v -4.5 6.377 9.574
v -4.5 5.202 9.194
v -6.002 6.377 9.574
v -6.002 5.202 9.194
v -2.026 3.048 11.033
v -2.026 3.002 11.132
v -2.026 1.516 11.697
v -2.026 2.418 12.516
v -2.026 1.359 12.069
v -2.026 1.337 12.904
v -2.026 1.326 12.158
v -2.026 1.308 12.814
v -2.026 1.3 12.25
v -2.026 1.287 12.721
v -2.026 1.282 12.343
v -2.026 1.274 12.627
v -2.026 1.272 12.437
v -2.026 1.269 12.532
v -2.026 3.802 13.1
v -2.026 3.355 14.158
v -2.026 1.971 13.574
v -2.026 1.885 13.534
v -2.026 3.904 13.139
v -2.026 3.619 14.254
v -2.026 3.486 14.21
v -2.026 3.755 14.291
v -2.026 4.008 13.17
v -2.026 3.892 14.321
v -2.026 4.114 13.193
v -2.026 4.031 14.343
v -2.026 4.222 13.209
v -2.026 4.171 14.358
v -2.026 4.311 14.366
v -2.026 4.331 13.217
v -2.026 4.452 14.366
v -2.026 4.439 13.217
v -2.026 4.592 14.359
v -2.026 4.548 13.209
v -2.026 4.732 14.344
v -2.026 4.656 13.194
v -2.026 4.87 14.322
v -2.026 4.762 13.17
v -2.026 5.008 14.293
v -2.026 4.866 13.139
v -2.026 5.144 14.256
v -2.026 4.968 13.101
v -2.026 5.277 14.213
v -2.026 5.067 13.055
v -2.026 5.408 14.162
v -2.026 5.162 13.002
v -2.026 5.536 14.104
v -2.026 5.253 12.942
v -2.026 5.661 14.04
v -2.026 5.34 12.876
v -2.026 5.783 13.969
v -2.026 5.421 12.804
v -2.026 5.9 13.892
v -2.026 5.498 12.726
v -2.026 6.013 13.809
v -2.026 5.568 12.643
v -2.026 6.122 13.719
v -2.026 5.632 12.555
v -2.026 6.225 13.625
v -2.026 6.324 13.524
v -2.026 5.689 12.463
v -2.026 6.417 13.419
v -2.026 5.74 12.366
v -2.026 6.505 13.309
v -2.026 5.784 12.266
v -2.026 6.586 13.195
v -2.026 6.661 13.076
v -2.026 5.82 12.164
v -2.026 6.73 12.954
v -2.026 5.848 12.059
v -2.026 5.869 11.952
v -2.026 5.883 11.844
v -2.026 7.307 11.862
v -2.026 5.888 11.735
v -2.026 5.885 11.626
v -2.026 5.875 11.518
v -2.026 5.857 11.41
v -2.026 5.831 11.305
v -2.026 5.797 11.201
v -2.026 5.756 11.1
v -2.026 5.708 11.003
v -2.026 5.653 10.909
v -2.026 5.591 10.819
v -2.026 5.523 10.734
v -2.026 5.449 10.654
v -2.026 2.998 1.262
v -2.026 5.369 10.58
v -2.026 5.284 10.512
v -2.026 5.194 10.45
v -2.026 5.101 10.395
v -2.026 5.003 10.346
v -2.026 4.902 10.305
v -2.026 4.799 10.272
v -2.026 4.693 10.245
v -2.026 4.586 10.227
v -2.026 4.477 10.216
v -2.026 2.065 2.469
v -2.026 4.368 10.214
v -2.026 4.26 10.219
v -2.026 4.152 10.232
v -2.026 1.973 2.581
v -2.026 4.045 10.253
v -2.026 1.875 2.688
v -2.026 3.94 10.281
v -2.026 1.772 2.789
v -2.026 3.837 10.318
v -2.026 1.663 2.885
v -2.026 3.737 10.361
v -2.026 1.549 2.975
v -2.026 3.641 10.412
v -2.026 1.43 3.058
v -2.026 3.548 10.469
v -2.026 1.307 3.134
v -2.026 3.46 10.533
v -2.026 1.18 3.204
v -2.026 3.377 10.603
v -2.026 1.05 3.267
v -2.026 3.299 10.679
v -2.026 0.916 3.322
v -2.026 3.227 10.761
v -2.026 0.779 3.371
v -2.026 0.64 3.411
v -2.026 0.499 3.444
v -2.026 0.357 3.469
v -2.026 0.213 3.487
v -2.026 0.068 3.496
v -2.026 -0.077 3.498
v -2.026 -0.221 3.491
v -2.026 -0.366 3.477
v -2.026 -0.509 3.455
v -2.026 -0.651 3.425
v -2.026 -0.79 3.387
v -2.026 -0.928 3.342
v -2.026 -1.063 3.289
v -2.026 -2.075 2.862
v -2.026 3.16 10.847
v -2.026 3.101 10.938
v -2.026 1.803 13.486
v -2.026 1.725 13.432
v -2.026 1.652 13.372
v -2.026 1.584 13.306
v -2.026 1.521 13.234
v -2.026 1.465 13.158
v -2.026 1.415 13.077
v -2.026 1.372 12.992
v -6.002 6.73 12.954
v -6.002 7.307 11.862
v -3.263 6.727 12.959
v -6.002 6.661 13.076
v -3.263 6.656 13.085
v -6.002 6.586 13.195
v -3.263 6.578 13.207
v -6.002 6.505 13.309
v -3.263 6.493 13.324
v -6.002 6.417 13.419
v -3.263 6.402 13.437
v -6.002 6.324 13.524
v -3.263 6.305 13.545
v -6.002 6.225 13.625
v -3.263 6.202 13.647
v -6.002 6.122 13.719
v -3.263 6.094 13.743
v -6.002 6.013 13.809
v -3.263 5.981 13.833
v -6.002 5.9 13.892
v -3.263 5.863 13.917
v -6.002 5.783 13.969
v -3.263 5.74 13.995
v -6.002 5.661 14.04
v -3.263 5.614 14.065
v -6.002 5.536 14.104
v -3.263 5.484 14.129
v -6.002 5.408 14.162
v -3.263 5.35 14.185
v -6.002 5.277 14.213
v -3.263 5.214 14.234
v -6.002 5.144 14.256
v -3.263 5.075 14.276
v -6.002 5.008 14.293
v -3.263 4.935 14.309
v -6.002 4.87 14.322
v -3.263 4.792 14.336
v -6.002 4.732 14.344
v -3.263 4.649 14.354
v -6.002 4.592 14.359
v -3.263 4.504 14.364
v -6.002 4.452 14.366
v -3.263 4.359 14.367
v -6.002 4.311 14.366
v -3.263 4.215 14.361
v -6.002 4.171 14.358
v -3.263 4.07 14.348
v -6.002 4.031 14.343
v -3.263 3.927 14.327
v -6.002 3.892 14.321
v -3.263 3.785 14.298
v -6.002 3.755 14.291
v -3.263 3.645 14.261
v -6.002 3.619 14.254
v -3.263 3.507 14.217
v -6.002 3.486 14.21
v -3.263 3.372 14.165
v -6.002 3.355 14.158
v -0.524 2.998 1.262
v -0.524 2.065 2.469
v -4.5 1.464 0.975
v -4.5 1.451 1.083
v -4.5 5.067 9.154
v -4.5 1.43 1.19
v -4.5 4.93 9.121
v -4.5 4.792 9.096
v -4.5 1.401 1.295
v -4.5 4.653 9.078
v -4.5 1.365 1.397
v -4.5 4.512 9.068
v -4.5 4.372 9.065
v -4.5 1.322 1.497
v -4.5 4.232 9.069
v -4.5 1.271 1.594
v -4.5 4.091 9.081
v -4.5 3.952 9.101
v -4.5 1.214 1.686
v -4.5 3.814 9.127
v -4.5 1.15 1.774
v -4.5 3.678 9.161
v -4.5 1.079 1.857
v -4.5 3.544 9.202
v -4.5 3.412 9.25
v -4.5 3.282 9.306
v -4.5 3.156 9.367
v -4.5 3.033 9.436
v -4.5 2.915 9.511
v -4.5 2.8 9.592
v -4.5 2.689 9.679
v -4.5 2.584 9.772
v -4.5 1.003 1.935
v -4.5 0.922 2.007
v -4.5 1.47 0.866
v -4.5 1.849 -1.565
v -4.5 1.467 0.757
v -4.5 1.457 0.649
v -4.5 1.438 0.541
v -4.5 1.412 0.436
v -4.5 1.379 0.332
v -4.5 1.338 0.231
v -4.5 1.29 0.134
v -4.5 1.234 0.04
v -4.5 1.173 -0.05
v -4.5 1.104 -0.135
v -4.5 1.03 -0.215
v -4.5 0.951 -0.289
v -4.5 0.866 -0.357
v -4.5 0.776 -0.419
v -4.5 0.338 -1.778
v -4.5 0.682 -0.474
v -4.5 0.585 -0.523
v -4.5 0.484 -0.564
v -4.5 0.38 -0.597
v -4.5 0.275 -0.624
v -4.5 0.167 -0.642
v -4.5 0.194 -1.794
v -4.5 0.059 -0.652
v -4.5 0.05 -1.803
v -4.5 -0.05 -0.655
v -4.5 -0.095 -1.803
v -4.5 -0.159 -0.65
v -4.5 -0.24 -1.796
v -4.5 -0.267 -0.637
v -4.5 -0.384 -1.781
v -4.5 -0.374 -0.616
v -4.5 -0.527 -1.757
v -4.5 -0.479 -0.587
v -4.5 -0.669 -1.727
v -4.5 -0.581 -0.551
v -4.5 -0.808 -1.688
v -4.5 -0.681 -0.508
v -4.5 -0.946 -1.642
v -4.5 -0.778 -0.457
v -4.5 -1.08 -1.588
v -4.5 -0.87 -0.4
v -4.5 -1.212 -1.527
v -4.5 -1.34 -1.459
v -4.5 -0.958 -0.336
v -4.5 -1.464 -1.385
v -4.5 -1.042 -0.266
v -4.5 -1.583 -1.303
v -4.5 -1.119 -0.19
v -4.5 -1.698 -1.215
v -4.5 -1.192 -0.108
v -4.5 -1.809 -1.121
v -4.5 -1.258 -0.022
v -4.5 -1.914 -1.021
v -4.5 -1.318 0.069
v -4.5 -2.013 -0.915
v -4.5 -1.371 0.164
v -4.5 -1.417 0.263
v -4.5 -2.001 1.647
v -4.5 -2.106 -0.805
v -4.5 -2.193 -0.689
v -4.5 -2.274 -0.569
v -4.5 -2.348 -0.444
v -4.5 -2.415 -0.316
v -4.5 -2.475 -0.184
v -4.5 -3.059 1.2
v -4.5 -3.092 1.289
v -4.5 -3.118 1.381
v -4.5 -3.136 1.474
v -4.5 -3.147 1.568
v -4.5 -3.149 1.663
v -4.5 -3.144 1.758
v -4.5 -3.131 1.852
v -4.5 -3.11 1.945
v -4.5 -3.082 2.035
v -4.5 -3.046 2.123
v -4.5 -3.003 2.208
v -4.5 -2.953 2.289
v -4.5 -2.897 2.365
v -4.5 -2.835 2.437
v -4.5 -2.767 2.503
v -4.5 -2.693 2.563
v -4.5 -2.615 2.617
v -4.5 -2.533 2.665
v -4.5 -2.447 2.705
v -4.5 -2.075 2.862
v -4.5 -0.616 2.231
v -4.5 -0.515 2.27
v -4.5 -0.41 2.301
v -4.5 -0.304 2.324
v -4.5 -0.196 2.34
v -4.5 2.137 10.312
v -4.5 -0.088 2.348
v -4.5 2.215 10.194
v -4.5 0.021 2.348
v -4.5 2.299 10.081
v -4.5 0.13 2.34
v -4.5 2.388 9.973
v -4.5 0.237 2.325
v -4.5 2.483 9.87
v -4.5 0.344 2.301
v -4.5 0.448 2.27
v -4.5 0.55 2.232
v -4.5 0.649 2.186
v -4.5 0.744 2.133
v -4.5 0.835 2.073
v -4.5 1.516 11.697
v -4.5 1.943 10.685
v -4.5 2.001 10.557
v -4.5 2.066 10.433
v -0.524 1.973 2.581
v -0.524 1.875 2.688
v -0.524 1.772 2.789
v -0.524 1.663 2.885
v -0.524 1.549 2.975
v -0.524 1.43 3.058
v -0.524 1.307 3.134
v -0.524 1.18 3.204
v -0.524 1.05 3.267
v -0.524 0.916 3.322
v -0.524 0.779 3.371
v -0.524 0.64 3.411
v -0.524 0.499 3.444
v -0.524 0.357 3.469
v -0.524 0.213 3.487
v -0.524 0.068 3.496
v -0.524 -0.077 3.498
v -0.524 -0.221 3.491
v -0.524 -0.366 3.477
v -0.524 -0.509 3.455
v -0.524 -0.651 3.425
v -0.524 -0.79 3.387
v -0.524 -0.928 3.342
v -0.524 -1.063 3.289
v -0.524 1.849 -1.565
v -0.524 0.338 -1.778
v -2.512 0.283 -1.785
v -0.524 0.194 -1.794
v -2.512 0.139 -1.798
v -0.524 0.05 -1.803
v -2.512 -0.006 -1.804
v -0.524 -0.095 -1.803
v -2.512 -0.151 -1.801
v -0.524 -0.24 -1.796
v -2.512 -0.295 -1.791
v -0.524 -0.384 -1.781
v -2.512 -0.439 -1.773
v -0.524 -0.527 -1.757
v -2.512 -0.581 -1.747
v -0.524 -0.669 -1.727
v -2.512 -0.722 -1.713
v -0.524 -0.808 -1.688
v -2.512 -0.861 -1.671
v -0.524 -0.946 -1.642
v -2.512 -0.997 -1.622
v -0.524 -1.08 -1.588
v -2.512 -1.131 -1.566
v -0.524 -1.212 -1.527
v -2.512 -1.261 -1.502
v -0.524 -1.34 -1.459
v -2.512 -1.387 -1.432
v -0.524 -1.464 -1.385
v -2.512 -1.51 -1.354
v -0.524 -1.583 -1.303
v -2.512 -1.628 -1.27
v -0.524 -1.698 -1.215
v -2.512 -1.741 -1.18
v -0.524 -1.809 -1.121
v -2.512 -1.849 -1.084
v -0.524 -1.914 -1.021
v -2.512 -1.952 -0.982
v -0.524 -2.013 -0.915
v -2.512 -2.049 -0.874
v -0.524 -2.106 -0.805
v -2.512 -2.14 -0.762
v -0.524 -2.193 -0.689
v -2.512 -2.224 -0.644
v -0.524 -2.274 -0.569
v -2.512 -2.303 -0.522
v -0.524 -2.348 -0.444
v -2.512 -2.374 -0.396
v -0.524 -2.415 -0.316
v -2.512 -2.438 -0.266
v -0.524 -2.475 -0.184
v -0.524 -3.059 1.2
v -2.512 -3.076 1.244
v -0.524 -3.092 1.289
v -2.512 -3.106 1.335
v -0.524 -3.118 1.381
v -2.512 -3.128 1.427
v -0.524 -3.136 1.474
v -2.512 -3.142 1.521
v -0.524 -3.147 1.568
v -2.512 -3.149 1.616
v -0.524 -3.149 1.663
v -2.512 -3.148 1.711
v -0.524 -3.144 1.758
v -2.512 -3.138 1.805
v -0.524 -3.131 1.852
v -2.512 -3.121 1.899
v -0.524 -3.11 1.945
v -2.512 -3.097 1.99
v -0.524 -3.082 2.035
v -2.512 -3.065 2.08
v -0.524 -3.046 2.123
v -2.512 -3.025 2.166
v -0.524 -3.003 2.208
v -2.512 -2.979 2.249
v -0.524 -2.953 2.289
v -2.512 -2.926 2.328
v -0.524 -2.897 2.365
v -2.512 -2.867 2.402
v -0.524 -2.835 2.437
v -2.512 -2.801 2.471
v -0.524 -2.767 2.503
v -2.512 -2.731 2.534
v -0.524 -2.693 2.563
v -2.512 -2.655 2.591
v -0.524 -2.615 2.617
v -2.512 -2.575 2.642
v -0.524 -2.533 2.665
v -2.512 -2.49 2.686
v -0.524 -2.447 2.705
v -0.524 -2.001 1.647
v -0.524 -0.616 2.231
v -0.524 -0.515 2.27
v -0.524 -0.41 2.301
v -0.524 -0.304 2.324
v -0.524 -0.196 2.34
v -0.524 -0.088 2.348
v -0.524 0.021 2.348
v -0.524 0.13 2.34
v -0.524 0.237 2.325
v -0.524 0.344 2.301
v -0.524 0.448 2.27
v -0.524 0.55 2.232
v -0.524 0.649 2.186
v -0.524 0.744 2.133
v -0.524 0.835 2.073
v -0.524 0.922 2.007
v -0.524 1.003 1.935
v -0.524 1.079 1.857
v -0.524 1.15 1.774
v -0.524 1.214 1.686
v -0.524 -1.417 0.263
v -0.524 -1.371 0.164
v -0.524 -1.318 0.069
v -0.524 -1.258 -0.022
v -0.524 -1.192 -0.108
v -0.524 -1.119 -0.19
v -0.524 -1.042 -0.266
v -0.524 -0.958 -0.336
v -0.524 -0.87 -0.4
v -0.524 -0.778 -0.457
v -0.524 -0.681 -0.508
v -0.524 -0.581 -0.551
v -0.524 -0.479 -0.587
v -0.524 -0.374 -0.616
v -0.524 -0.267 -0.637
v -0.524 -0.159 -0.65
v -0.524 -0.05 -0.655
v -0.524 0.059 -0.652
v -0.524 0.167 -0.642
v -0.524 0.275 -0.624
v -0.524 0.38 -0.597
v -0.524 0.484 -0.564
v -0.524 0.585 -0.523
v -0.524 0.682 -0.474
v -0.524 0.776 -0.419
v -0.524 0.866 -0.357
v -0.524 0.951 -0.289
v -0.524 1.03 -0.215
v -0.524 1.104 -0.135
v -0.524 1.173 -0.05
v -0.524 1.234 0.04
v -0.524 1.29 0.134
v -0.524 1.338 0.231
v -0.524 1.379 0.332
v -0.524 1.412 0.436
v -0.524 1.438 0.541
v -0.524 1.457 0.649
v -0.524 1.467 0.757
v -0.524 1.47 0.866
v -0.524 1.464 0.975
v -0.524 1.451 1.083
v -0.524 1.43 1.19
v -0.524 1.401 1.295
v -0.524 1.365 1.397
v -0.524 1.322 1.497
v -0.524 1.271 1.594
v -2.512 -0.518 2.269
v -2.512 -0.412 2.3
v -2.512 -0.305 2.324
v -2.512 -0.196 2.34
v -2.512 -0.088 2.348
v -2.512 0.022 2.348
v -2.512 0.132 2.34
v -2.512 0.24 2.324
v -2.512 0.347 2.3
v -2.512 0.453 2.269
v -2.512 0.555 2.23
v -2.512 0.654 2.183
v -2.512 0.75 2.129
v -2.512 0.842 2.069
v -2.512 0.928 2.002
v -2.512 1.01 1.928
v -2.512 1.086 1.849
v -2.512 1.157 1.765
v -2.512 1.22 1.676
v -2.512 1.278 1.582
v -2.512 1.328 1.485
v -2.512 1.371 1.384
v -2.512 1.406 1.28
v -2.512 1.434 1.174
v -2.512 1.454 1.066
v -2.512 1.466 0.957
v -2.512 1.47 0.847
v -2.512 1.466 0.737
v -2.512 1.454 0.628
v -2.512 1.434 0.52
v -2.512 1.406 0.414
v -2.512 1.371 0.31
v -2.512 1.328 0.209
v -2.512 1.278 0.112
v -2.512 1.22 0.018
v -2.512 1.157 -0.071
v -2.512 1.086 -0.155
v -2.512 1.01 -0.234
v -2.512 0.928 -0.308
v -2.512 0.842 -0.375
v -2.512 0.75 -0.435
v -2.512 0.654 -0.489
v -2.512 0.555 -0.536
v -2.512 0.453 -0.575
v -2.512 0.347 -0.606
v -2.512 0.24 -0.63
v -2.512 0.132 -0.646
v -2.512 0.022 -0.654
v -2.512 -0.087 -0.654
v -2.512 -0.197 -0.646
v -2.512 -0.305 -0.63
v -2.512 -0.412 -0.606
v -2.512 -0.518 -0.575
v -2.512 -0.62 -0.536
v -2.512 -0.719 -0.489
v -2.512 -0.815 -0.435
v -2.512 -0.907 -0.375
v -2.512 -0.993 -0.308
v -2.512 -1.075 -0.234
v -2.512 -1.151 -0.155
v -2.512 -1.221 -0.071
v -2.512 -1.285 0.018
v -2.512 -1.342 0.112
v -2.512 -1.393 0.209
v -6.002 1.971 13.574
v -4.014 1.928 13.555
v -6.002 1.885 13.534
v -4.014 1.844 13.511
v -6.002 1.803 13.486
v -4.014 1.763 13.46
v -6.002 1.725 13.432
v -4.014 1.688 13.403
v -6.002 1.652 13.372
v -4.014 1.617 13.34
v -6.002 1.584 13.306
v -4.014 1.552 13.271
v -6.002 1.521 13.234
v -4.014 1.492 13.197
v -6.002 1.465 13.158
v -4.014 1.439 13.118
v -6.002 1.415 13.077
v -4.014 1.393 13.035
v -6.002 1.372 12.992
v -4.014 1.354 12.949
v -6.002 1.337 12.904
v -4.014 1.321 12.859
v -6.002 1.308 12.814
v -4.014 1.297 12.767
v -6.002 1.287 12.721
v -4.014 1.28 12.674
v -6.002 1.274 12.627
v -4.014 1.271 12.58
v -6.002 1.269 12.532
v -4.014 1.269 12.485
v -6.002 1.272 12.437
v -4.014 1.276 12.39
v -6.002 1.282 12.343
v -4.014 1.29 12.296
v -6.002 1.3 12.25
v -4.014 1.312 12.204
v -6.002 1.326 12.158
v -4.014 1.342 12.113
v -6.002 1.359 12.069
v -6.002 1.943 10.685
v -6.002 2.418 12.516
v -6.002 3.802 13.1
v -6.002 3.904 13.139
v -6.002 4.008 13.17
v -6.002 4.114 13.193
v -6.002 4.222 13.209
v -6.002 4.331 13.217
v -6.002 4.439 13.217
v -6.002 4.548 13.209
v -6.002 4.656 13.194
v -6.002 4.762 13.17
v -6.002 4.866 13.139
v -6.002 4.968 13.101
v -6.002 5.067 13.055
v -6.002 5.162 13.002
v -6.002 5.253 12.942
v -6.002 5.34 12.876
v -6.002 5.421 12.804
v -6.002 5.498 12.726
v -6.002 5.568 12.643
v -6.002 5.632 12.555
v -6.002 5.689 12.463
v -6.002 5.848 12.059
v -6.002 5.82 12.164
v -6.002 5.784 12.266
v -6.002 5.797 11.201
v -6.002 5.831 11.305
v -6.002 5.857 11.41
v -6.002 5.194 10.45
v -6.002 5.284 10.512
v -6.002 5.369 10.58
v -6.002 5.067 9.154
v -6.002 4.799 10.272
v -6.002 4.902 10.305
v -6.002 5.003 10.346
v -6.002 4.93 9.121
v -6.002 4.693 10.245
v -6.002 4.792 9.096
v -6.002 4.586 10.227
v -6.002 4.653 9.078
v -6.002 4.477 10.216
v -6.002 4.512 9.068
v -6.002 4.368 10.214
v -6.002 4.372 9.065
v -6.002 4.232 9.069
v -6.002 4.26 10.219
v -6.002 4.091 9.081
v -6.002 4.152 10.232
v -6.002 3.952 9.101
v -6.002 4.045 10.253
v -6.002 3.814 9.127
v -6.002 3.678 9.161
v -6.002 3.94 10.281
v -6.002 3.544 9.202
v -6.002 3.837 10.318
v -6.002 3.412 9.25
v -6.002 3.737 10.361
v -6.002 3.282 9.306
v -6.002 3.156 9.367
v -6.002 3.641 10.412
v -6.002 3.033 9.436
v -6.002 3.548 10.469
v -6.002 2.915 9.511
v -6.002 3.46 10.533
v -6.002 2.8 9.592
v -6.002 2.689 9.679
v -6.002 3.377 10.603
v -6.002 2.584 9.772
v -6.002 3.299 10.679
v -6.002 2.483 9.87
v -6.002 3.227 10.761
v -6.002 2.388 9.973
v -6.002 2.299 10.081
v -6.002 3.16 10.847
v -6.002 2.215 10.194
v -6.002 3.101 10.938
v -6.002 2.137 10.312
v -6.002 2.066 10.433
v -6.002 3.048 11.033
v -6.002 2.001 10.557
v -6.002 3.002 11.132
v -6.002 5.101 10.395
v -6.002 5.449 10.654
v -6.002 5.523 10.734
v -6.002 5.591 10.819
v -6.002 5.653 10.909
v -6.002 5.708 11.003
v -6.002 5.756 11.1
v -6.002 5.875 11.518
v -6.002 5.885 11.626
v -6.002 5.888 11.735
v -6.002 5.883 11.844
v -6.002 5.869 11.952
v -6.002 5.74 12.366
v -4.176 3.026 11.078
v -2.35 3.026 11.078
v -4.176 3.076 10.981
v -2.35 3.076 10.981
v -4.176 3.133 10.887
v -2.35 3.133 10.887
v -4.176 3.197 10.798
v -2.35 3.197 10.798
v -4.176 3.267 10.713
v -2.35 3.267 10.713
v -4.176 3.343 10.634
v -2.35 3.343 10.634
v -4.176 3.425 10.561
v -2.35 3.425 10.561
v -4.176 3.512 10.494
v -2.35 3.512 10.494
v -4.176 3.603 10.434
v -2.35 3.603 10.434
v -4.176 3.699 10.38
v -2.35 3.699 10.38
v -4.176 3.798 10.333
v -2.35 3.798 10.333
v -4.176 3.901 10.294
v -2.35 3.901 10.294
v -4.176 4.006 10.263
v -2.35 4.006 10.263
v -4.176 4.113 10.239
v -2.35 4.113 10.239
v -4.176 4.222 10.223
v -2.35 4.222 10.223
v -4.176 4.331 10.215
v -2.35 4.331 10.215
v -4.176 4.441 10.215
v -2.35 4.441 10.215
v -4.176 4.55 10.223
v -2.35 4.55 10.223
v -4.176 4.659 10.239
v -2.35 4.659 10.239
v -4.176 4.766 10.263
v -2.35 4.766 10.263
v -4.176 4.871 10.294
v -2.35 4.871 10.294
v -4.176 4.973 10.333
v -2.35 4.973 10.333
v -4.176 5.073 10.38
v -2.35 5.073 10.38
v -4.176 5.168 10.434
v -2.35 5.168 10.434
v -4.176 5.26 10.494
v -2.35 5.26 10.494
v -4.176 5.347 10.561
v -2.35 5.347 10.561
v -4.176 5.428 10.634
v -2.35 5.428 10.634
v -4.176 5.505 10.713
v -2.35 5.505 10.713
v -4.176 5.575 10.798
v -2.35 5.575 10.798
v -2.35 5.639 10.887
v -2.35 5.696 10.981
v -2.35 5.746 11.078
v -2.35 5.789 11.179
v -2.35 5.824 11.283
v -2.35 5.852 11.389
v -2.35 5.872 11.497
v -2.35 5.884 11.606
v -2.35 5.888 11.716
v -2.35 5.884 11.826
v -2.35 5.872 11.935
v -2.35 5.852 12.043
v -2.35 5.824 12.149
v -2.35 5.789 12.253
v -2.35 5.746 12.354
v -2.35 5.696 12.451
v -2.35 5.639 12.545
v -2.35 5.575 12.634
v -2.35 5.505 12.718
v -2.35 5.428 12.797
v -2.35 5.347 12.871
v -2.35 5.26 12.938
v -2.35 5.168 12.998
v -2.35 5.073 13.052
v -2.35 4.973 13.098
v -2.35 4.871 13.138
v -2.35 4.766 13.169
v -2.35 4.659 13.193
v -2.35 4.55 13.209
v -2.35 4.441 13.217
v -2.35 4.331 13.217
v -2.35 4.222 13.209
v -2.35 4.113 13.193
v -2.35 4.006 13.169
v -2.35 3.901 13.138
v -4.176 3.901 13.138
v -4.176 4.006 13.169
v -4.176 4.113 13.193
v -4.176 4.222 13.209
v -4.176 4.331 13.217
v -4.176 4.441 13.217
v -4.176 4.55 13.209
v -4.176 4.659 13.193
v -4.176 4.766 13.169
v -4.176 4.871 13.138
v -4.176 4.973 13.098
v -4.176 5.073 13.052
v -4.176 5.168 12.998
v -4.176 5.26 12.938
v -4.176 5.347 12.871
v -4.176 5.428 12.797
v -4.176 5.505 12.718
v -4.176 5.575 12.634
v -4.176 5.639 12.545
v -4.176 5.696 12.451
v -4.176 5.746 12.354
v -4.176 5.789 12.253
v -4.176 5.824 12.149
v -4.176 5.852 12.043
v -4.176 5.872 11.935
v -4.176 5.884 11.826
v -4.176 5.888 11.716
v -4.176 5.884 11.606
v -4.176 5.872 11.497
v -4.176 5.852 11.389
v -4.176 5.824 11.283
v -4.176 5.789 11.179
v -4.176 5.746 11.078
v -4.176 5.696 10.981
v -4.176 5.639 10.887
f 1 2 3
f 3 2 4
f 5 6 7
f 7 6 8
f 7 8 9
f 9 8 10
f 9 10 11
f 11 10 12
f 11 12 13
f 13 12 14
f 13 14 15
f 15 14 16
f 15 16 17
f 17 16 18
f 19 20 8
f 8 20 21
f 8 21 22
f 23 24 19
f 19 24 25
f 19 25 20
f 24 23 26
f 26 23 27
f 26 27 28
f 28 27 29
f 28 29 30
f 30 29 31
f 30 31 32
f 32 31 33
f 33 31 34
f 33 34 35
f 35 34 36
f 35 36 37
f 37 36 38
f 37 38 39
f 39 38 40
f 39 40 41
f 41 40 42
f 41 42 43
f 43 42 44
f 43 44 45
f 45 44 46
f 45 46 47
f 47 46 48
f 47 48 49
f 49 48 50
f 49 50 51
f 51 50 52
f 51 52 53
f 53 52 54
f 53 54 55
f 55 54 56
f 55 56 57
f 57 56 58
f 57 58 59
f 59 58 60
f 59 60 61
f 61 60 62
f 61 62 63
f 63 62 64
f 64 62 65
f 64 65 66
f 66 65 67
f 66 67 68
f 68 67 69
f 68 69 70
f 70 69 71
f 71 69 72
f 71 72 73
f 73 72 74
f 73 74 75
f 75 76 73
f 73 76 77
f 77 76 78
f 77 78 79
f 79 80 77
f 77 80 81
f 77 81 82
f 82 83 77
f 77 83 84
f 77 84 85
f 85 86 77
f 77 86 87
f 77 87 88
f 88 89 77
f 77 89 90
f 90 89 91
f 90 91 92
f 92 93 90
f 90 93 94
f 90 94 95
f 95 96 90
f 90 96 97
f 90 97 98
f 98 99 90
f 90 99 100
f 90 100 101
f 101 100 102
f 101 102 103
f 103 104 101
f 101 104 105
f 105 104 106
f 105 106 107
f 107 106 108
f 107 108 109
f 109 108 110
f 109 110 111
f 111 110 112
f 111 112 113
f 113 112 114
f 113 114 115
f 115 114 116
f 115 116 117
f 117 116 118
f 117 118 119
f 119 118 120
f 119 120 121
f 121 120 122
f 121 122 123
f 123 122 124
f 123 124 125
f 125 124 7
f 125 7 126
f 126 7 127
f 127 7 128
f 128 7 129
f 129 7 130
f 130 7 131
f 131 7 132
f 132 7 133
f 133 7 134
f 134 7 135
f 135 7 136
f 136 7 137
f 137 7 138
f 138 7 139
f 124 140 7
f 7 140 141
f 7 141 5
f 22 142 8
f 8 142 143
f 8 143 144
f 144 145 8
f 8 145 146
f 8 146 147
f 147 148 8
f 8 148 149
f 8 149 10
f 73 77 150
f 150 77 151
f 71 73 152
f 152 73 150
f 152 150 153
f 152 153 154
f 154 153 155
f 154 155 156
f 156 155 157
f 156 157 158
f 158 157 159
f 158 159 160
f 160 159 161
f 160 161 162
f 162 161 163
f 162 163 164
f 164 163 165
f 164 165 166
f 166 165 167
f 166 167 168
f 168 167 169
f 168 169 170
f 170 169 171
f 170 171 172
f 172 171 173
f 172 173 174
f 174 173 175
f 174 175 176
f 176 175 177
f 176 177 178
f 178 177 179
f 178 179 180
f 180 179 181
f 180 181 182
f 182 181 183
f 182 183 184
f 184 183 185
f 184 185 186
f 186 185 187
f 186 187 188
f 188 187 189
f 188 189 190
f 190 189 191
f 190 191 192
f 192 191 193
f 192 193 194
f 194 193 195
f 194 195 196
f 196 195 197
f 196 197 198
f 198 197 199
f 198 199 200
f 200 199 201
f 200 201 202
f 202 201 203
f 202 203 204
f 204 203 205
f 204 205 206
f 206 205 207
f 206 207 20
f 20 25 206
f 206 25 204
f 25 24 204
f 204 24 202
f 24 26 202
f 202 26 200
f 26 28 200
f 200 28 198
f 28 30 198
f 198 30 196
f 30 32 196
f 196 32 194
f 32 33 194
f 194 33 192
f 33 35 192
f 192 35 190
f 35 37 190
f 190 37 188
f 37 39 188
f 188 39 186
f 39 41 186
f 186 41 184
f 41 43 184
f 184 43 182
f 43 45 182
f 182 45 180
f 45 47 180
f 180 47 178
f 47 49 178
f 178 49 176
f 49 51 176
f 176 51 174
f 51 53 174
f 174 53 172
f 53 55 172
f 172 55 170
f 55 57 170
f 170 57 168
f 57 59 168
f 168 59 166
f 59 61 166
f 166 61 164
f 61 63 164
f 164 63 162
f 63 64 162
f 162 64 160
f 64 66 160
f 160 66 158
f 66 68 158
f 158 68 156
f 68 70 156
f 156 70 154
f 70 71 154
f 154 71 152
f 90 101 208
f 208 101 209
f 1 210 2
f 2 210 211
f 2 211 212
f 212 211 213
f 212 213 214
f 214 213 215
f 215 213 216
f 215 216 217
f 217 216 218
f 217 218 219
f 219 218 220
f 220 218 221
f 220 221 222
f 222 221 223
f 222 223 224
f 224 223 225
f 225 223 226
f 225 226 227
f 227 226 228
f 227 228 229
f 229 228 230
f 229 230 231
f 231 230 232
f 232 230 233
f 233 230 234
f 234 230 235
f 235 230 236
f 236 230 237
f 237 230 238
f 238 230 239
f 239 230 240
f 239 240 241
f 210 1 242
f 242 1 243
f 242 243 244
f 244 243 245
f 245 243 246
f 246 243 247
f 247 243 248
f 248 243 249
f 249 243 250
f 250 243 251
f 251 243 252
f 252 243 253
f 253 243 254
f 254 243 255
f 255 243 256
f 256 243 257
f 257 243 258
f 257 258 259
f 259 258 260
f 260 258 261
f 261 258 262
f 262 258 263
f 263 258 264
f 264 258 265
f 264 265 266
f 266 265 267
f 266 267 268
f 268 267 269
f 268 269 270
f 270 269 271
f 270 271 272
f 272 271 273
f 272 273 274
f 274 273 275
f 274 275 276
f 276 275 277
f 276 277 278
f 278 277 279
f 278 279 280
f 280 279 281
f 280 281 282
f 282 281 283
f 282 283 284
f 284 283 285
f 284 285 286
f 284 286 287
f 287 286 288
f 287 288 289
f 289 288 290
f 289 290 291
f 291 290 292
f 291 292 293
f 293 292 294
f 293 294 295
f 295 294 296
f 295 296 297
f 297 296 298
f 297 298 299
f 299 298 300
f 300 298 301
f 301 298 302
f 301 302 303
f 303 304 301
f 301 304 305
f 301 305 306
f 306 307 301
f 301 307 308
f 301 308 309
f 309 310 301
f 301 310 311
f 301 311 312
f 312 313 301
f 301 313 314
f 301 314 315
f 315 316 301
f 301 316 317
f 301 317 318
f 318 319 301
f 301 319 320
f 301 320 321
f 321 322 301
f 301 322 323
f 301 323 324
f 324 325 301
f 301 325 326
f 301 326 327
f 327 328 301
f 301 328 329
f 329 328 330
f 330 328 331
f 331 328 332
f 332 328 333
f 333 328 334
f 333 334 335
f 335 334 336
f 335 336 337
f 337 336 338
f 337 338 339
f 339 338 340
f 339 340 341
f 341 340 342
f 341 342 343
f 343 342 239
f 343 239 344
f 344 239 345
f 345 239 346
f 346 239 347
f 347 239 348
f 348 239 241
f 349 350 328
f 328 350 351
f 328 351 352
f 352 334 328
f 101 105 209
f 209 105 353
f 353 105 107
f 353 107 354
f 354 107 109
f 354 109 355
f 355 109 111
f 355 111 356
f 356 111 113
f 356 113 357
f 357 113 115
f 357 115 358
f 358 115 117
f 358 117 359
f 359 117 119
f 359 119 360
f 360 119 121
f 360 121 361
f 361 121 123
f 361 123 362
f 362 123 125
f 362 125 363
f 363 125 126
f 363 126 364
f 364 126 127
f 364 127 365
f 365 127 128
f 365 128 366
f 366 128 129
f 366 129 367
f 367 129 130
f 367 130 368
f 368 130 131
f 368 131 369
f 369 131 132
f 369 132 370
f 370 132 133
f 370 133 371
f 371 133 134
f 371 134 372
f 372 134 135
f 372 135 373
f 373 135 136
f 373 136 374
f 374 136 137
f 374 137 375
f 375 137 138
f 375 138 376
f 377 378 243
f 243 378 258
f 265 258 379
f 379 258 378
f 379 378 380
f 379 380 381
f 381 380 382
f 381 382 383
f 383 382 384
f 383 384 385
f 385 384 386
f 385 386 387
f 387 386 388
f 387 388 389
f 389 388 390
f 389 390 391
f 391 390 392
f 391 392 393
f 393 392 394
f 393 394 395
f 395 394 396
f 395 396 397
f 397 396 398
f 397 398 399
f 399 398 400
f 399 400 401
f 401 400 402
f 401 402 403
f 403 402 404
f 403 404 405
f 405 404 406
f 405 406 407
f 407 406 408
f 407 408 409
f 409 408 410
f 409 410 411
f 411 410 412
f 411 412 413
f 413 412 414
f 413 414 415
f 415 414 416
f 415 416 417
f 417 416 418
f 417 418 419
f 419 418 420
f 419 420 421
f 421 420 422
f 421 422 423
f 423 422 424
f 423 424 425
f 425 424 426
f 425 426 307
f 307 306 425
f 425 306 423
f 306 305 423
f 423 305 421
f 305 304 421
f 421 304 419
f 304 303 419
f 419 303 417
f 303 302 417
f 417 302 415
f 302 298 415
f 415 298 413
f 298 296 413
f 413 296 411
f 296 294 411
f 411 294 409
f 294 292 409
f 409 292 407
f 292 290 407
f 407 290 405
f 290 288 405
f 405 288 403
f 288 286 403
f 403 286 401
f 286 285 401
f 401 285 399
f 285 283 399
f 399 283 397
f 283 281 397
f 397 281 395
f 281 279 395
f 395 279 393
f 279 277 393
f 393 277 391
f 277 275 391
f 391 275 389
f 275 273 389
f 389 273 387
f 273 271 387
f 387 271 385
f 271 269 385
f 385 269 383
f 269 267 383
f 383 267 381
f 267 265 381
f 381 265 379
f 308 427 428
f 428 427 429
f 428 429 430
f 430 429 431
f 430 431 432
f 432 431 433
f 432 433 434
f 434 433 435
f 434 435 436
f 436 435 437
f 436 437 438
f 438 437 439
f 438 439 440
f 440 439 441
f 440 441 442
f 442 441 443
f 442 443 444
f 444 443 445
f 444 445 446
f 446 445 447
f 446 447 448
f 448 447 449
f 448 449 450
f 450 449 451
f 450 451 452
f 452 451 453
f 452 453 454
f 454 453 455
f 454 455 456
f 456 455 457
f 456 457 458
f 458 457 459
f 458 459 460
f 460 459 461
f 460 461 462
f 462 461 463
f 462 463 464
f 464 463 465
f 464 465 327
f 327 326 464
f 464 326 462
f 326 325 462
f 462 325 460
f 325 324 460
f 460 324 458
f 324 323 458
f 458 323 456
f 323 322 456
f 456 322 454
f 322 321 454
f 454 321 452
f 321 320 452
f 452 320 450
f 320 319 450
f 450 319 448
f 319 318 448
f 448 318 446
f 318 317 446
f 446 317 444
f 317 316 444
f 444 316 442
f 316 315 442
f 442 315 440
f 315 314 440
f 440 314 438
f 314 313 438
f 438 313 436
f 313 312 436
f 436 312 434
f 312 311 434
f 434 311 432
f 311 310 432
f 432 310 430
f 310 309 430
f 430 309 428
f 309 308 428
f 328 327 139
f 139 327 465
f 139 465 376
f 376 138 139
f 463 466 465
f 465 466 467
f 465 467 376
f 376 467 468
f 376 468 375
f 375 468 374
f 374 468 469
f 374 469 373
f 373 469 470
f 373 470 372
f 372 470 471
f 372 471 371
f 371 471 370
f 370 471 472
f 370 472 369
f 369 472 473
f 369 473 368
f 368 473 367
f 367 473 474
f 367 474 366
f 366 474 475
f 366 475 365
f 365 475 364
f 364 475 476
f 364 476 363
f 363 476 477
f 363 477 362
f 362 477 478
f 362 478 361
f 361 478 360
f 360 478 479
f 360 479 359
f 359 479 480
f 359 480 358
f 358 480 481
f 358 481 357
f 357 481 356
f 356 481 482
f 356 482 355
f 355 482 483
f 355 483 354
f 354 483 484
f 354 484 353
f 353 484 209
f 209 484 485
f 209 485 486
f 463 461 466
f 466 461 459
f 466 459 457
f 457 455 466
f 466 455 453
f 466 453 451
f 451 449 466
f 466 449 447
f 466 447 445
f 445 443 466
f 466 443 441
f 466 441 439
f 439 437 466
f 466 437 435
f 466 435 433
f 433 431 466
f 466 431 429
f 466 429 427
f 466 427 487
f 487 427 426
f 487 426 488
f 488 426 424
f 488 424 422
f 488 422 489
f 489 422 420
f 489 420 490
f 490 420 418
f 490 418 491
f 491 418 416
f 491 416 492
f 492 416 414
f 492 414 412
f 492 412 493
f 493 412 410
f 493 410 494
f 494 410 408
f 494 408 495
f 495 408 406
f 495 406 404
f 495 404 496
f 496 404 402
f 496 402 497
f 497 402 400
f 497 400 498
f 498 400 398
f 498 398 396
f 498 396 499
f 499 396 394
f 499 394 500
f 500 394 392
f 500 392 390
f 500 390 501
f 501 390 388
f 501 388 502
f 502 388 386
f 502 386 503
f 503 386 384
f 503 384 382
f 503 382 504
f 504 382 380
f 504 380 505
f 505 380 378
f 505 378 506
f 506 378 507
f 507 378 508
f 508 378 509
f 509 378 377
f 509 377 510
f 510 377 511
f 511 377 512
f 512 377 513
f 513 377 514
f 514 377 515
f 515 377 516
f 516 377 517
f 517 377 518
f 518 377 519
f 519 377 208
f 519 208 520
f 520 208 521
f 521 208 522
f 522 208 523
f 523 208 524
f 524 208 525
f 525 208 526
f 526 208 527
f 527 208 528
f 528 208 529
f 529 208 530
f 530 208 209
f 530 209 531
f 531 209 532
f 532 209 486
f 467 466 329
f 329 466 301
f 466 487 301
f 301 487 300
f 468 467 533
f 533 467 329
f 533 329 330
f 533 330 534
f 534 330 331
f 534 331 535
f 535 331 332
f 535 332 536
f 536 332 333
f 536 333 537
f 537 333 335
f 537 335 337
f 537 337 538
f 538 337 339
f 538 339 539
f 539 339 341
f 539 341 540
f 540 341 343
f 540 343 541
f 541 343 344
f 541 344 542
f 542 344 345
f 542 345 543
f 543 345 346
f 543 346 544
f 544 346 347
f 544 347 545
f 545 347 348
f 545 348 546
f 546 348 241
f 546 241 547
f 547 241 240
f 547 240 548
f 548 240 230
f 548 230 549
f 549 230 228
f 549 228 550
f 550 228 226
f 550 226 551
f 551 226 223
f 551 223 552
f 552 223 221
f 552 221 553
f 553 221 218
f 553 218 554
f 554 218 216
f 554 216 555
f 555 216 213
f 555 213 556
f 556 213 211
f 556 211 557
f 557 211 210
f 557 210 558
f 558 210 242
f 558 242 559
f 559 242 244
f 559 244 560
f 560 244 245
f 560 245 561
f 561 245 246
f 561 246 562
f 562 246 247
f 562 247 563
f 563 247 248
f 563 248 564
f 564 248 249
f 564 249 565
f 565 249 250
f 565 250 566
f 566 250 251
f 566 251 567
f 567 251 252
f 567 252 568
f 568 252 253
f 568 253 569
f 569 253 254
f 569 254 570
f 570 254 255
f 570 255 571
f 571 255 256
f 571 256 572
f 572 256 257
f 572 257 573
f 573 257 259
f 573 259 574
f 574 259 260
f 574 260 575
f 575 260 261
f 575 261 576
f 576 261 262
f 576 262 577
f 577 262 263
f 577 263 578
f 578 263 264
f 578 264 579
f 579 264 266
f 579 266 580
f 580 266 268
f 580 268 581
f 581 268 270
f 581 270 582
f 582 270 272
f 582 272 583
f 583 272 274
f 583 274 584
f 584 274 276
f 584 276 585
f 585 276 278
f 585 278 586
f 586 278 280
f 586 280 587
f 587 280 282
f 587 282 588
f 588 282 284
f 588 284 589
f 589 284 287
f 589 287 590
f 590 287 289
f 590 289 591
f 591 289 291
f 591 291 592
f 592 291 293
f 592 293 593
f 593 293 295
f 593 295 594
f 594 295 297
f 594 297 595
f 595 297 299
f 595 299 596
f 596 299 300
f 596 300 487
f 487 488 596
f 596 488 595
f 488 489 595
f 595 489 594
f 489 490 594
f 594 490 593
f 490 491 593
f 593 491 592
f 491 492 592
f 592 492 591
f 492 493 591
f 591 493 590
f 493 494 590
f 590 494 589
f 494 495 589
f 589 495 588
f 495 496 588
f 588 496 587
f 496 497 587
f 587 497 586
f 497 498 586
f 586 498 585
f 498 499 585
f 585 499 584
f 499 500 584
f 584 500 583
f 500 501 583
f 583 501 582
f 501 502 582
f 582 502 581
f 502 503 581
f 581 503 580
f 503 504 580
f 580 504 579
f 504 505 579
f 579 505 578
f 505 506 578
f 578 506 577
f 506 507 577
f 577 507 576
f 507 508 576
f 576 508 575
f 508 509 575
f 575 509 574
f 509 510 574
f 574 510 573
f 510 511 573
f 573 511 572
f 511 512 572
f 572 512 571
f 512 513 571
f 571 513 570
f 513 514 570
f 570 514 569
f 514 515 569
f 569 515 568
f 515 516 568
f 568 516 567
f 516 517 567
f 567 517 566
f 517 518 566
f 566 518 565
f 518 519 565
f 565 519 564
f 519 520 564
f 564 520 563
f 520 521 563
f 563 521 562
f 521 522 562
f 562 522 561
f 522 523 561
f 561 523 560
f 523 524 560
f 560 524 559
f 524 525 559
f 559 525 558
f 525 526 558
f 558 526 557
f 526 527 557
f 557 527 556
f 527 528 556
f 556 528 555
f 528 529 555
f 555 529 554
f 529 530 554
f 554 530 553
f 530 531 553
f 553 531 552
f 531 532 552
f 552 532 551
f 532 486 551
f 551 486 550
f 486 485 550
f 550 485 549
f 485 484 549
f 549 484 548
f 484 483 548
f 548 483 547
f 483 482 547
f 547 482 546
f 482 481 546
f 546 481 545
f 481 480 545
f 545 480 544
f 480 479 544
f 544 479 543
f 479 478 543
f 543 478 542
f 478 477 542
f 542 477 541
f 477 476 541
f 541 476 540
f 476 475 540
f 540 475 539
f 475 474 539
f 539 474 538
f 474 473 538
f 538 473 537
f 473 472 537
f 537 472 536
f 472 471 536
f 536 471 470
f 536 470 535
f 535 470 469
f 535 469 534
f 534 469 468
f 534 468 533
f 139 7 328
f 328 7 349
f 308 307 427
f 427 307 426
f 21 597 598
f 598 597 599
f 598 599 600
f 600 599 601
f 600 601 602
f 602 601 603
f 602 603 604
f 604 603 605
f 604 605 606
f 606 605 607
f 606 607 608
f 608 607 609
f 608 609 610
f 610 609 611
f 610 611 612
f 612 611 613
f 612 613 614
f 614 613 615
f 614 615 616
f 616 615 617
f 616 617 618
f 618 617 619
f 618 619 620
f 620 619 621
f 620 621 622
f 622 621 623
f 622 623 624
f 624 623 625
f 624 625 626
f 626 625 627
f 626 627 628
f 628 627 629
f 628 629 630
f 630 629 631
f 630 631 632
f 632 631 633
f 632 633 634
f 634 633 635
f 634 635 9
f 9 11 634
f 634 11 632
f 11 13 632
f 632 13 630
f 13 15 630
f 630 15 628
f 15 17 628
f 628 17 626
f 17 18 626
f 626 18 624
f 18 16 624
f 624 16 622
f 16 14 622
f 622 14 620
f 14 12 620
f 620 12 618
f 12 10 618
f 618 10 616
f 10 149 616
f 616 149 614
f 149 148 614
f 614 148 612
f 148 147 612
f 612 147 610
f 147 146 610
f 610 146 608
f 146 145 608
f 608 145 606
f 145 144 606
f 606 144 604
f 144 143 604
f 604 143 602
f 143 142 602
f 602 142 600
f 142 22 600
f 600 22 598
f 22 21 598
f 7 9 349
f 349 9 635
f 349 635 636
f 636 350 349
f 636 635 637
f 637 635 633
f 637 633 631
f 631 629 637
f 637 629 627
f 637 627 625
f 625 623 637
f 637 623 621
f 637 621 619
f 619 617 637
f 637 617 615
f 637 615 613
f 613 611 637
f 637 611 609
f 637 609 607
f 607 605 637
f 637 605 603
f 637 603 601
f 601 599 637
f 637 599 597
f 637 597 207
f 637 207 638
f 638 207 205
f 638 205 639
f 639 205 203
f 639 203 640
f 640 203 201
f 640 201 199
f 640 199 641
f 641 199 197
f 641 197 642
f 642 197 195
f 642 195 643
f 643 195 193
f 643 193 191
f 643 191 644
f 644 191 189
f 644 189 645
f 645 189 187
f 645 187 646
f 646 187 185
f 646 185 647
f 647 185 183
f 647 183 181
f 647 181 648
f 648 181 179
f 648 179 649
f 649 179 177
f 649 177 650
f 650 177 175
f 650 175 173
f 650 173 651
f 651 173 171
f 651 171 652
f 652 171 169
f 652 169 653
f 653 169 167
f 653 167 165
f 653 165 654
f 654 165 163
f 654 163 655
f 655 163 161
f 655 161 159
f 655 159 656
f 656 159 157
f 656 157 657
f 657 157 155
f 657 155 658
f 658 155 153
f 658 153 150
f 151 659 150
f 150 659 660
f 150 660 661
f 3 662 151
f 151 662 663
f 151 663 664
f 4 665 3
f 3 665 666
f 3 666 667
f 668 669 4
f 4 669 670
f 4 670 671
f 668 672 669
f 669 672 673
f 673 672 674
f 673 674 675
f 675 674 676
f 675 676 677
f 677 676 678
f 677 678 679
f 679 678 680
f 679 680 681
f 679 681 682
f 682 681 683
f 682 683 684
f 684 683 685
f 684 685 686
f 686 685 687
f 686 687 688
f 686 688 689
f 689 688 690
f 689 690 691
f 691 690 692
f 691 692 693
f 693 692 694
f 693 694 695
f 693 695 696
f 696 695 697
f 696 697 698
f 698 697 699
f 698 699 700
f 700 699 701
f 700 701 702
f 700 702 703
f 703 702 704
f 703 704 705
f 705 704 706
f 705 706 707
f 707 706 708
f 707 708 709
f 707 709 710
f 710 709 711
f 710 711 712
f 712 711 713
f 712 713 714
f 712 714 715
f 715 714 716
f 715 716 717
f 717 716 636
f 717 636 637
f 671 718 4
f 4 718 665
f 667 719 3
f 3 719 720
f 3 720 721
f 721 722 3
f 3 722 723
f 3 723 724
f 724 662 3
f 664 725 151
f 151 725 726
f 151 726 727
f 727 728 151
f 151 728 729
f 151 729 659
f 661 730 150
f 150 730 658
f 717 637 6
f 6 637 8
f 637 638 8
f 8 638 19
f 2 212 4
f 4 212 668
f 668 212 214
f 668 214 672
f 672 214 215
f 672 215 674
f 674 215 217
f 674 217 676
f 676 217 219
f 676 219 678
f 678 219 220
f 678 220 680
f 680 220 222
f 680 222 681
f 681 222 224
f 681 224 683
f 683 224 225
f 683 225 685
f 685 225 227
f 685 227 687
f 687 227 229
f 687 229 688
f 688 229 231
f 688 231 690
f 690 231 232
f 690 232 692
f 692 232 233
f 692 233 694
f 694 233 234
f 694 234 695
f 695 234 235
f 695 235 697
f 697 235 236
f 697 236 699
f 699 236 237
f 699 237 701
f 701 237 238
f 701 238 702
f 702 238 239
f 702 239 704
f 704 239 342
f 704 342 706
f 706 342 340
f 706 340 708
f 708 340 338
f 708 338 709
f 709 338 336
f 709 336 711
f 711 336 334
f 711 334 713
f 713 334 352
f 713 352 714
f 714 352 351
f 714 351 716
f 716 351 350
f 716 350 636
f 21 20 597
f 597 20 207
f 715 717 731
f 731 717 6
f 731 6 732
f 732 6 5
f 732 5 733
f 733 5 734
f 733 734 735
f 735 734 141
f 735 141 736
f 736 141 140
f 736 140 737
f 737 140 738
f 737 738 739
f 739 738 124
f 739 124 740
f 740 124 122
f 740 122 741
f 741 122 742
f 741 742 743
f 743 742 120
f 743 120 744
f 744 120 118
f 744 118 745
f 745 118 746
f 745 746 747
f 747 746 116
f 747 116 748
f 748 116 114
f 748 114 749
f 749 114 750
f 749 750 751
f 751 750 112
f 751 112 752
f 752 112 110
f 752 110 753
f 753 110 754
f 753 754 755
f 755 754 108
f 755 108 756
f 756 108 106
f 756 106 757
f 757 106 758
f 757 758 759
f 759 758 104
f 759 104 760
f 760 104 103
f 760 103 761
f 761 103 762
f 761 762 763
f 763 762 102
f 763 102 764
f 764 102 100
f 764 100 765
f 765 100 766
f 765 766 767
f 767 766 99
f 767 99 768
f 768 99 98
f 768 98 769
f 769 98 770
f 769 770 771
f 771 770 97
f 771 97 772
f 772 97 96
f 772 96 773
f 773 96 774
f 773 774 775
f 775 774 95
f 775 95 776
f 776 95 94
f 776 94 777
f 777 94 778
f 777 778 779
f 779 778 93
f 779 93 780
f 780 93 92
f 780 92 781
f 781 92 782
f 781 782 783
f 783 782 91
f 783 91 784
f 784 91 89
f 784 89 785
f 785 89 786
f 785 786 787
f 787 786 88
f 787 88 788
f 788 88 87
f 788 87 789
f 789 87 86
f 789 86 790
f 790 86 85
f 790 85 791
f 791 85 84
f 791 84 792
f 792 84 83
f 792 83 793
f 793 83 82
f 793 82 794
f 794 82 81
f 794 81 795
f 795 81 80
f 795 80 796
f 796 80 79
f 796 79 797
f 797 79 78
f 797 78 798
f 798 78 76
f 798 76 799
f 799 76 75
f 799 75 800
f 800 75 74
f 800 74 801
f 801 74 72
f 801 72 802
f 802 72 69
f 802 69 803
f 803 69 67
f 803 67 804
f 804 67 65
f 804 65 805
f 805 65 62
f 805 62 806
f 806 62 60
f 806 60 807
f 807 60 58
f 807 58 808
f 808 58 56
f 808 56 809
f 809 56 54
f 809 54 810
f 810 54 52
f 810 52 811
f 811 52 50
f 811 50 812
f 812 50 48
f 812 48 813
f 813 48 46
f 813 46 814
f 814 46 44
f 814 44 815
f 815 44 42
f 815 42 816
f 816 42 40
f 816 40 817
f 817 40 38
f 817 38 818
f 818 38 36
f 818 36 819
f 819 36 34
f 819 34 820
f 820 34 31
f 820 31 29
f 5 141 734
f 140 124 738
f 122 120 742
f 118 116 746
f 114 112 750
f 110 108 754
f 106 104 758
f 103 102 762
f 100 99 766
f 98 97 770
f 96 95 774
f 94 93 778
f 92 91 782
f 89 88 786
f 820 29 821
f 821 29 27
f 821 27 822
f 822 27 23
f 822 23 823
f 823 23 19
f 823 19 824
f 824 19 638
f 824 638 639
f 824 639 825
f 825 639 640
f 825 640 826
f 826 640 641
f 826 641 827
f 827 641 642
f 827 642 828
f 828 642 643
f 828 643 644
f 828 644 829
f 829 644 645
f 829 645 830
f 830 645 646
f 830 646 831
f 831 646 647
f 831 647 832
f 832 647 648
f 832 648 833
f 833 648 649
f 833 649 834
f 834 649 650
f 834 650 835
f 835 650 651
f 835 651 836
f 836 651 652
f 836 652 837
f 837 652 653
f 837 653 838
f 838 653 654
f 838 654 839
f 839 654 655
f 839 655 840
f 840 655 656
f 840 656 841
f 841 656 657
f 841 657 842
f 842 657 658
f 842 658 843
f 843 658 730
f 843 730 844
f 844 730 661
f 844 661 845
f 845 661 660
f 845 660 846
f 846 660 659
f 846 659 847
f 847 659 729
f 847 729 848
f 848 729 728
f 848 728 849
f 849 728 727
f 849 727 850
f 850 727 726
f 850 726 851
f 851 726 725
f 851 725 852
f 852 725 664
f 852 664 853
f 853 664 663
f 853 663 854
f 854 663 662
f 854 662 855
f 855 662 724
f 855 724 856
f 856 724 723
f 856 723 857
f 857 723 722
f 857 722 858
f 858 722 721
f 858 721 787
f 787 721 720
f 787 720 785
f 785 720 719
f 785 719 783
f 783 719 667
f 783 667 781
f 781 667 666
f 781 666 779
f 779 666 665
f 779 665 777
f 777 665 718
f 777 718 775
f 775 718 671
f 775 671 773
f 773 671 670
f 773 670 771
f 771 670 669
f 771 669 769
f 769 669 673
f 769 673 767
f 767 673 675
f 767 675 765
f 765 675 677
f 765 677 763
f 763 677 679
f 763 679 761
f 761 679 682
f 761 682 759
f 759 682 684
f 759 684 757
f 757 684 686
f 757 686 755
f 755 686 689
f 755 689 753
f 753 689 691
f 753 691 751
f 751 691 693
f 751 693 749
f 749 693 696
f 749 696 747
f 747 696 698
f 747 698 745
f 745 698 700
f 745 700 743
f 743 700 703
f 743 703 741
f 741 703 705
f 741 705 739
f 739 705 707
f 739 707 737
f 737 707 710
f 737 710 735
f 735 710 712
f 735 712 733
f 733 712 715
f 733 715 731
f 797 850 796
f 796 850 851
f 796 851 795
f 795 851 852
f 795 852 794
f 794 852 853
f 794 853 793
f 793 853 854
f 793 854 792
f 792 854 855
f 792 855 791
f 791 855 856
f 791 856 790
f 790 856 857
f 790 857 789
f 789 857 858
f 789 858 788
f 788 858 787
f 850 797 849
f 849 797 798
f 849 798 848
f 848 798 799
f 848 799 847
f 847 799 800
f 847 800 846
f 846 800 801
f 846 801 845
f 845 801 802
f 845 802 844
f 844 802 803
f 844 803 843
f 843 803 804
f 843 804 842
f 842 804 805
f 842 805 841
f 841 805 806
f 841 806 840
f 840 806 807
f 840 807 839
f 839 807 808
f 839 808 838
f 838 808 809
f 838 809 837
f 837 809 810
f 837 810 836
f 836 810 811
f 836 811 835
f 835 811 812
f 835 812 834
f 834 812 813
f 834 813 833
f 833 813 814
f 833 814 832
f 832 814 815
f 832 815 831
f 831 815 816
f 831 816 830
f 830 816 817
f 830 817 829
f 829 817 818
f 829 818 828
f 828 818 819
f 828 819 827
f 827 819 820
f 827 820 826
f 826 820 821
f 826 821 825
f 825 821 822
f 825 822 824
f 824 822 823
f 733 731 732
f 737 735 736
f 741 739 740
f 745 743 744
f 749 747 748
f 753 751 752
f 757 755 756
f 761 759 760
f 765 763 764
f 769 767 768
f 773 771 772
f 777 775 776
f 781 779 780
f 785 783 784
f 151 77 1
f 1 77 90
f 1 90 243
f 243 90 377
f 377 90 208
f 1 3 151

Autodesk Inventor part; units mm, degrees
ref_plane "YZ Plane" through (0, 0, 0) normal (1, 0, 0) x (0, 1, 0)
ref_plane "XY Plane" through (0, 0, 0) normal (0, 0, 1) x (1, 0, 0)
sketch "スケッチ1" plane through (0, 0, 0) normal (1, 0, 0) x (0, 1, 0)
  arc A0 (-2.7792, 1.1297) -> (2.7792, -1.1297) centre (0, 0) ccw
  circle A1 centre (5, 12.3) radius 1.7
  arc A2 (7.7792, 11.1703) -> (2.2208, 13.4297) centre (5, 12.3) ccw
  circle A3 centre (0, 0) radius 1.7
  line L0 (2.2208, 13.4297) -> (-2.7792, 1.1297)
  line L1 (7.7792, 11.1703) -> (2.7792, -1.1297)
  dimension "d1" = 3.4
  dimension "d2" = 6
  dimension "d3" = 3.4
  dimension "d4" = 5
  dimension "d5" = 12.3
  dimension "d8" = 3
extrude "押し出し1" add sketch "スケッチ1" against normal blind 6.2
sketch "スケッチ2" plane through (0, 0, 0) normal (1, 0, 0) x (0, 0, -1)
  circle A0 centre (0, 0) radius 1.7 projected
  circle A1 centre (-12.3, 5) radius 1.7 projected
  line L0 (-1.1297, -2.7792) -> (-13.4297, 2.2208) projected
  arc A2 (-1.1297, -2.7792) -> (1.1297, 2.7792) centre (0, 0) ccw projected
  line L1 (-11.1703, 7.7792) -> (1.1297, 2.7792) projected
  arc A3 (-11.1703, 7.7792) -> (-13.4297, 2.2208) centre (-12.3, 5) ccw projected
  circle A4 centre (0, 0) radius 3
  line L2 (-1.1297, -2.7792) -> (1.1297, 2.7792)
  dimension "d11" = 6
extrude "押し出し2" cut sketch "スケッチ2" against normal blind 1.7 contours A4 L0 A3 L1
sketch "スケッチ3" plane through (-6.2, 0, 0) normal (-1, 0, 0) x (0, 0, 1)
  circle A0 centre (0, 0) radius 1.7 projected
  circle A1 centre (12.3, 5) radius 1.7 projected
  line L0 (1.1297, -2.7792) -> (13.4297, 2.2208) projected
  arc A2 (13.4297, 2.2208) -> (11.1703, 7.7792) centre (12.3, 5) ccw projected
  line L1 (11.1703, 7.7792) -> (-1.1297, 2.7792) projected
  arc A3 (-1.1297, 2.7792) -> (1.1297, -2.7792) centre (0, 0) ccw projected
  circle A4 centre (12.3, 5) radius 3
  line L2 (11.1703, 7.7792) -> (13.4297, 2.2208)
  line L3 (1.1297, -2.7792) -> (13.4297, 2.2208) projected
  dimension "d14" = 6
extrude "押し出し3" cut sketch "スケッチ3" against normal blind 1.7 contours A4 L0 A3 L1
sketch "スケッチ4" plane through (-1.7, 0, 0) normal (1, 0, 0) x (0, 0, -1)
  arc A0 (1.1297, 2.7792) -> (-1.1297, -2.7792) centre (0, 0) ccw projected
  line L0 (-11.1703, 7.7792) -> (1.1297, 2.7792) projected
  arc A1 (-11.1703, 7.7792) -> (-13.4297, 2.2208) centre (-12.3, 5) ccw projected
  line L1 (-1.1297, -2.7792) -> (-13.4297, 2.2208) projected
  circle A2 centre (-12.3, 5) radius 1.7 projected
  line L2 (-13.4297, 2.2208) -> (-13.8977, 1.0697)
  line L3 (-13.8977, 1.0697) -> (-15.064, 3.8337)
  arc A3 (-11.1703, 7.7792) -> (-13.4297, 2.2208) centre (-12.3, 5) ccw projected
  dimension "d17" = 45
extrude "押し出し4" add sketch "スケッチ4" against normal up to surface (4.5 mm away) contours L2 L3 A1
mirror "ミラー1" about plane through (-1.7, 2.2208, 13.4297) normal (0, -0.3765791, -0.9263845) of "押し出し4"
sketch "スケッチ5" plane through (-1.7, 0, 0) normal (1, 0, 0) x (0, 0, -1)
  line L0 (-1.1297, -2.7792) -> (-12.2786, 1.7529) projected
  arc A0 (1.1297, 2.7792) -> (-1.1297, -2.7792) centre (0, 0) ccw projected
  line L1 (-11.1703, 7.7792) -> (1.1297, 2.7792) projected
  arc A1 (-11.1703, 7.7792) -> (-15.064, 3.8337) centre (-12.3, 5) ccw projected
  line L2 (-15.064, 3.8337) -> (-13.8977, 1.0697) projected
  line L3 (-12.2786, 1.7529) -> (-13.8977, 1.0697) projected
  circle A2 centre (-12.3, 5) radius 1.7 projected
  line L4 (-12.9402, 3.4251) -> (-13.2054, 2.7728)
  line L5 (-13.2054, 2.7728) -> (-13.8663, 4.3391)
  circle A3 centre (-12.3, 5) radius 1.7 projected
  arc A4 (-13.8663, 4.3391) -> (-12.9402, 3.4251) centre (-12.3, 5) ccw
  dimension "d20" = 45
extrude "押し出し5" cut sketch "スケッチ5" against normal blind 10 contours A2 L4 L5
mirror "ミラー2" about plane through (-1.7, 3.4251, 12.9402) normal (0, 0.3765791, 0.9263845) of "押し出し5"
fillet "フィレット1" radius 1.3 1 edges at (-3.95, 1.0697, 13.8977)
sketch "スケッチ6" plane through (-4.5, 0, 0) normal (-1, 0, 0) x (0, 0, 1)
  circle A0 centre (0, 0) radius 1.7 projected
  line L0 (12.2786, 1.7529) -> (11.1337, 2.236) projected
  arc A1 (11.1703, 7.7792) -> (11.1337, 2.236) centre (12.3, 5) ccw projected
  line L1 (-1.1297, 2.7792) -> (11.1703, 7.7792) projected
  arc A2 (-1.1297, 2.7792) -> (1.1297, -2.7792) centre (0, 0) ccw projected
  line L2 (12.2786, 1.7529) -> (1.1297, -2.7792) projected
  line L3 (1.1297, -2.7792) -> (1.5977, -3.9303)
  line L4 (1.5977, -3.9303) -> (-1.1663, -2.764)
  dimension "d24" = 45
extrude "押し出し6" add sketch "スケッチ6" against normal up to surface (4.5 mm away) contours L3 L4 A2
mirror "ミラー3" about plane through (-4.5, -2.7792, 1.1297) normal (0, 0.3765791, 0.9263845) of "押し出し6"
sketch "スケッチ7" plane through (-4.5, 0, 0) normal (-1, 0, 0) x (0, 0, 1)
  circle A0 centre (0, 0) radius 1.7 projected
  line L0 (0.6402, -1.5749) -> (0.9054, -2.2272)
  line L1 (0.9054, -2.2272) -> (-0.6609, -1.5663)
  line L2 (-1.1297, 2.7792) -> (11.1703, 7.7792) projected
  dimension "d29" = 45
extrude "押し出し7" cut sketch "スケッチ7" against normal blind 10 contours A0 L0 L1
mirror "ミラー4" about plane through (-4.5, -1.5749, 0.6402) normal (0, -0.3765791, -0.9263845) of "押し出し7"
fillet "フィレット2" radius 1.3 1 edges at (-2.25, -3.9303, 1.5977)
sketch "スケッチ8" plane through (-4.5, 0, 0) normal (-1, 0, 0) x (0, 0, 1)
  line L0 (-1.1297, 2.7792) -> (11.1703, 7.7792) projected
  arc A0 (-1.1297, 2.7792) -> (-1.1663, -2.764) centre (0, 0) ccw projected
  line L1 (-1.1297, 2.7792) -> (-2.7291, 2.129)
  line L2 (-2.7291, 2.129) -> (-2.9705, 0.4196)
extrude "押し出し8" add sketch "スケッチ8" against normal up to surface (4.5 mm away)
ref_plane "作業平面1" through (0, 2.7792, -1.1297) normal (0, -0.3765791, -0.9263845) x (-1, 0, 0)
mirror "ミラー5" about plane through (0, 2.7792, -1.1297) normal (0, -0.3765791, -0.9263845) of "押し出し8"
sketch "スケッチ9" plane through (-6.2, 0, 0) normal (-1, 0, 0) x (0, 0, 1)
  arc A0 (12.7, 1.5751) -> (14.4031, 2.2674) centre (13.2054, 2.7728) ccw projected
  line L0 (14.4031, 2.2674) -> (15.064, 3.8337) projected
  arc A1 (15.064, 3.8337) -> (11.1337, 2.236) centre (12.3, 5) ccw projected
  line L1 (12.7, 1.5751) -> (11.1337, 2.236) projected
  line L2 (13.2054, 2.7728) -> (11.6391, 3.4337) projected
  arc A2 (13.8663, 4.3391) -> (11.6391, 3.4337) centre (12.3, 5) ccw projected
  line L3 (13.8663, 4.3391) -> (13.2054, 2.7728) projected
  line L4 (-2.7291, 2.129) -> (11.1703, 7.7792) projected
  line L5 (11.1703, 7.7792) -> (12.4648, 8.3054)
  line L6 (12.4648, 8.3054) -> (13.7006, 7.653)
  point P0 (0, 0)
extrude "押し出し9" add sketch "スケッチ9" against normal up to surface (4.5 mm away) contours L5 L6 A1
ref_plane "作業平面2" through (0, 7.7792, 11.1703) normal (0, -0.3765791, -0.9263845) x (-1, 0, 0)
mirror "ミラー6" about plane through (0, 7.7792, 11.1703) normal (0, -0.3765791, -0.9263845) of "押し出し9"
ref_plane "作業平面3" through (0, 7.7792, 11.1703) normal (0, -0.3765791, -0.9263845) x (-1, 0, 0)
scale "尺度1" factors (0.8836555, 0.8836555, 0.8836555) then translate (-0.5236, -0.0325, 0.847) bodies 1
properties part number "HbRing-LittleCouplerLink01" material "ナイロン 6/6"
